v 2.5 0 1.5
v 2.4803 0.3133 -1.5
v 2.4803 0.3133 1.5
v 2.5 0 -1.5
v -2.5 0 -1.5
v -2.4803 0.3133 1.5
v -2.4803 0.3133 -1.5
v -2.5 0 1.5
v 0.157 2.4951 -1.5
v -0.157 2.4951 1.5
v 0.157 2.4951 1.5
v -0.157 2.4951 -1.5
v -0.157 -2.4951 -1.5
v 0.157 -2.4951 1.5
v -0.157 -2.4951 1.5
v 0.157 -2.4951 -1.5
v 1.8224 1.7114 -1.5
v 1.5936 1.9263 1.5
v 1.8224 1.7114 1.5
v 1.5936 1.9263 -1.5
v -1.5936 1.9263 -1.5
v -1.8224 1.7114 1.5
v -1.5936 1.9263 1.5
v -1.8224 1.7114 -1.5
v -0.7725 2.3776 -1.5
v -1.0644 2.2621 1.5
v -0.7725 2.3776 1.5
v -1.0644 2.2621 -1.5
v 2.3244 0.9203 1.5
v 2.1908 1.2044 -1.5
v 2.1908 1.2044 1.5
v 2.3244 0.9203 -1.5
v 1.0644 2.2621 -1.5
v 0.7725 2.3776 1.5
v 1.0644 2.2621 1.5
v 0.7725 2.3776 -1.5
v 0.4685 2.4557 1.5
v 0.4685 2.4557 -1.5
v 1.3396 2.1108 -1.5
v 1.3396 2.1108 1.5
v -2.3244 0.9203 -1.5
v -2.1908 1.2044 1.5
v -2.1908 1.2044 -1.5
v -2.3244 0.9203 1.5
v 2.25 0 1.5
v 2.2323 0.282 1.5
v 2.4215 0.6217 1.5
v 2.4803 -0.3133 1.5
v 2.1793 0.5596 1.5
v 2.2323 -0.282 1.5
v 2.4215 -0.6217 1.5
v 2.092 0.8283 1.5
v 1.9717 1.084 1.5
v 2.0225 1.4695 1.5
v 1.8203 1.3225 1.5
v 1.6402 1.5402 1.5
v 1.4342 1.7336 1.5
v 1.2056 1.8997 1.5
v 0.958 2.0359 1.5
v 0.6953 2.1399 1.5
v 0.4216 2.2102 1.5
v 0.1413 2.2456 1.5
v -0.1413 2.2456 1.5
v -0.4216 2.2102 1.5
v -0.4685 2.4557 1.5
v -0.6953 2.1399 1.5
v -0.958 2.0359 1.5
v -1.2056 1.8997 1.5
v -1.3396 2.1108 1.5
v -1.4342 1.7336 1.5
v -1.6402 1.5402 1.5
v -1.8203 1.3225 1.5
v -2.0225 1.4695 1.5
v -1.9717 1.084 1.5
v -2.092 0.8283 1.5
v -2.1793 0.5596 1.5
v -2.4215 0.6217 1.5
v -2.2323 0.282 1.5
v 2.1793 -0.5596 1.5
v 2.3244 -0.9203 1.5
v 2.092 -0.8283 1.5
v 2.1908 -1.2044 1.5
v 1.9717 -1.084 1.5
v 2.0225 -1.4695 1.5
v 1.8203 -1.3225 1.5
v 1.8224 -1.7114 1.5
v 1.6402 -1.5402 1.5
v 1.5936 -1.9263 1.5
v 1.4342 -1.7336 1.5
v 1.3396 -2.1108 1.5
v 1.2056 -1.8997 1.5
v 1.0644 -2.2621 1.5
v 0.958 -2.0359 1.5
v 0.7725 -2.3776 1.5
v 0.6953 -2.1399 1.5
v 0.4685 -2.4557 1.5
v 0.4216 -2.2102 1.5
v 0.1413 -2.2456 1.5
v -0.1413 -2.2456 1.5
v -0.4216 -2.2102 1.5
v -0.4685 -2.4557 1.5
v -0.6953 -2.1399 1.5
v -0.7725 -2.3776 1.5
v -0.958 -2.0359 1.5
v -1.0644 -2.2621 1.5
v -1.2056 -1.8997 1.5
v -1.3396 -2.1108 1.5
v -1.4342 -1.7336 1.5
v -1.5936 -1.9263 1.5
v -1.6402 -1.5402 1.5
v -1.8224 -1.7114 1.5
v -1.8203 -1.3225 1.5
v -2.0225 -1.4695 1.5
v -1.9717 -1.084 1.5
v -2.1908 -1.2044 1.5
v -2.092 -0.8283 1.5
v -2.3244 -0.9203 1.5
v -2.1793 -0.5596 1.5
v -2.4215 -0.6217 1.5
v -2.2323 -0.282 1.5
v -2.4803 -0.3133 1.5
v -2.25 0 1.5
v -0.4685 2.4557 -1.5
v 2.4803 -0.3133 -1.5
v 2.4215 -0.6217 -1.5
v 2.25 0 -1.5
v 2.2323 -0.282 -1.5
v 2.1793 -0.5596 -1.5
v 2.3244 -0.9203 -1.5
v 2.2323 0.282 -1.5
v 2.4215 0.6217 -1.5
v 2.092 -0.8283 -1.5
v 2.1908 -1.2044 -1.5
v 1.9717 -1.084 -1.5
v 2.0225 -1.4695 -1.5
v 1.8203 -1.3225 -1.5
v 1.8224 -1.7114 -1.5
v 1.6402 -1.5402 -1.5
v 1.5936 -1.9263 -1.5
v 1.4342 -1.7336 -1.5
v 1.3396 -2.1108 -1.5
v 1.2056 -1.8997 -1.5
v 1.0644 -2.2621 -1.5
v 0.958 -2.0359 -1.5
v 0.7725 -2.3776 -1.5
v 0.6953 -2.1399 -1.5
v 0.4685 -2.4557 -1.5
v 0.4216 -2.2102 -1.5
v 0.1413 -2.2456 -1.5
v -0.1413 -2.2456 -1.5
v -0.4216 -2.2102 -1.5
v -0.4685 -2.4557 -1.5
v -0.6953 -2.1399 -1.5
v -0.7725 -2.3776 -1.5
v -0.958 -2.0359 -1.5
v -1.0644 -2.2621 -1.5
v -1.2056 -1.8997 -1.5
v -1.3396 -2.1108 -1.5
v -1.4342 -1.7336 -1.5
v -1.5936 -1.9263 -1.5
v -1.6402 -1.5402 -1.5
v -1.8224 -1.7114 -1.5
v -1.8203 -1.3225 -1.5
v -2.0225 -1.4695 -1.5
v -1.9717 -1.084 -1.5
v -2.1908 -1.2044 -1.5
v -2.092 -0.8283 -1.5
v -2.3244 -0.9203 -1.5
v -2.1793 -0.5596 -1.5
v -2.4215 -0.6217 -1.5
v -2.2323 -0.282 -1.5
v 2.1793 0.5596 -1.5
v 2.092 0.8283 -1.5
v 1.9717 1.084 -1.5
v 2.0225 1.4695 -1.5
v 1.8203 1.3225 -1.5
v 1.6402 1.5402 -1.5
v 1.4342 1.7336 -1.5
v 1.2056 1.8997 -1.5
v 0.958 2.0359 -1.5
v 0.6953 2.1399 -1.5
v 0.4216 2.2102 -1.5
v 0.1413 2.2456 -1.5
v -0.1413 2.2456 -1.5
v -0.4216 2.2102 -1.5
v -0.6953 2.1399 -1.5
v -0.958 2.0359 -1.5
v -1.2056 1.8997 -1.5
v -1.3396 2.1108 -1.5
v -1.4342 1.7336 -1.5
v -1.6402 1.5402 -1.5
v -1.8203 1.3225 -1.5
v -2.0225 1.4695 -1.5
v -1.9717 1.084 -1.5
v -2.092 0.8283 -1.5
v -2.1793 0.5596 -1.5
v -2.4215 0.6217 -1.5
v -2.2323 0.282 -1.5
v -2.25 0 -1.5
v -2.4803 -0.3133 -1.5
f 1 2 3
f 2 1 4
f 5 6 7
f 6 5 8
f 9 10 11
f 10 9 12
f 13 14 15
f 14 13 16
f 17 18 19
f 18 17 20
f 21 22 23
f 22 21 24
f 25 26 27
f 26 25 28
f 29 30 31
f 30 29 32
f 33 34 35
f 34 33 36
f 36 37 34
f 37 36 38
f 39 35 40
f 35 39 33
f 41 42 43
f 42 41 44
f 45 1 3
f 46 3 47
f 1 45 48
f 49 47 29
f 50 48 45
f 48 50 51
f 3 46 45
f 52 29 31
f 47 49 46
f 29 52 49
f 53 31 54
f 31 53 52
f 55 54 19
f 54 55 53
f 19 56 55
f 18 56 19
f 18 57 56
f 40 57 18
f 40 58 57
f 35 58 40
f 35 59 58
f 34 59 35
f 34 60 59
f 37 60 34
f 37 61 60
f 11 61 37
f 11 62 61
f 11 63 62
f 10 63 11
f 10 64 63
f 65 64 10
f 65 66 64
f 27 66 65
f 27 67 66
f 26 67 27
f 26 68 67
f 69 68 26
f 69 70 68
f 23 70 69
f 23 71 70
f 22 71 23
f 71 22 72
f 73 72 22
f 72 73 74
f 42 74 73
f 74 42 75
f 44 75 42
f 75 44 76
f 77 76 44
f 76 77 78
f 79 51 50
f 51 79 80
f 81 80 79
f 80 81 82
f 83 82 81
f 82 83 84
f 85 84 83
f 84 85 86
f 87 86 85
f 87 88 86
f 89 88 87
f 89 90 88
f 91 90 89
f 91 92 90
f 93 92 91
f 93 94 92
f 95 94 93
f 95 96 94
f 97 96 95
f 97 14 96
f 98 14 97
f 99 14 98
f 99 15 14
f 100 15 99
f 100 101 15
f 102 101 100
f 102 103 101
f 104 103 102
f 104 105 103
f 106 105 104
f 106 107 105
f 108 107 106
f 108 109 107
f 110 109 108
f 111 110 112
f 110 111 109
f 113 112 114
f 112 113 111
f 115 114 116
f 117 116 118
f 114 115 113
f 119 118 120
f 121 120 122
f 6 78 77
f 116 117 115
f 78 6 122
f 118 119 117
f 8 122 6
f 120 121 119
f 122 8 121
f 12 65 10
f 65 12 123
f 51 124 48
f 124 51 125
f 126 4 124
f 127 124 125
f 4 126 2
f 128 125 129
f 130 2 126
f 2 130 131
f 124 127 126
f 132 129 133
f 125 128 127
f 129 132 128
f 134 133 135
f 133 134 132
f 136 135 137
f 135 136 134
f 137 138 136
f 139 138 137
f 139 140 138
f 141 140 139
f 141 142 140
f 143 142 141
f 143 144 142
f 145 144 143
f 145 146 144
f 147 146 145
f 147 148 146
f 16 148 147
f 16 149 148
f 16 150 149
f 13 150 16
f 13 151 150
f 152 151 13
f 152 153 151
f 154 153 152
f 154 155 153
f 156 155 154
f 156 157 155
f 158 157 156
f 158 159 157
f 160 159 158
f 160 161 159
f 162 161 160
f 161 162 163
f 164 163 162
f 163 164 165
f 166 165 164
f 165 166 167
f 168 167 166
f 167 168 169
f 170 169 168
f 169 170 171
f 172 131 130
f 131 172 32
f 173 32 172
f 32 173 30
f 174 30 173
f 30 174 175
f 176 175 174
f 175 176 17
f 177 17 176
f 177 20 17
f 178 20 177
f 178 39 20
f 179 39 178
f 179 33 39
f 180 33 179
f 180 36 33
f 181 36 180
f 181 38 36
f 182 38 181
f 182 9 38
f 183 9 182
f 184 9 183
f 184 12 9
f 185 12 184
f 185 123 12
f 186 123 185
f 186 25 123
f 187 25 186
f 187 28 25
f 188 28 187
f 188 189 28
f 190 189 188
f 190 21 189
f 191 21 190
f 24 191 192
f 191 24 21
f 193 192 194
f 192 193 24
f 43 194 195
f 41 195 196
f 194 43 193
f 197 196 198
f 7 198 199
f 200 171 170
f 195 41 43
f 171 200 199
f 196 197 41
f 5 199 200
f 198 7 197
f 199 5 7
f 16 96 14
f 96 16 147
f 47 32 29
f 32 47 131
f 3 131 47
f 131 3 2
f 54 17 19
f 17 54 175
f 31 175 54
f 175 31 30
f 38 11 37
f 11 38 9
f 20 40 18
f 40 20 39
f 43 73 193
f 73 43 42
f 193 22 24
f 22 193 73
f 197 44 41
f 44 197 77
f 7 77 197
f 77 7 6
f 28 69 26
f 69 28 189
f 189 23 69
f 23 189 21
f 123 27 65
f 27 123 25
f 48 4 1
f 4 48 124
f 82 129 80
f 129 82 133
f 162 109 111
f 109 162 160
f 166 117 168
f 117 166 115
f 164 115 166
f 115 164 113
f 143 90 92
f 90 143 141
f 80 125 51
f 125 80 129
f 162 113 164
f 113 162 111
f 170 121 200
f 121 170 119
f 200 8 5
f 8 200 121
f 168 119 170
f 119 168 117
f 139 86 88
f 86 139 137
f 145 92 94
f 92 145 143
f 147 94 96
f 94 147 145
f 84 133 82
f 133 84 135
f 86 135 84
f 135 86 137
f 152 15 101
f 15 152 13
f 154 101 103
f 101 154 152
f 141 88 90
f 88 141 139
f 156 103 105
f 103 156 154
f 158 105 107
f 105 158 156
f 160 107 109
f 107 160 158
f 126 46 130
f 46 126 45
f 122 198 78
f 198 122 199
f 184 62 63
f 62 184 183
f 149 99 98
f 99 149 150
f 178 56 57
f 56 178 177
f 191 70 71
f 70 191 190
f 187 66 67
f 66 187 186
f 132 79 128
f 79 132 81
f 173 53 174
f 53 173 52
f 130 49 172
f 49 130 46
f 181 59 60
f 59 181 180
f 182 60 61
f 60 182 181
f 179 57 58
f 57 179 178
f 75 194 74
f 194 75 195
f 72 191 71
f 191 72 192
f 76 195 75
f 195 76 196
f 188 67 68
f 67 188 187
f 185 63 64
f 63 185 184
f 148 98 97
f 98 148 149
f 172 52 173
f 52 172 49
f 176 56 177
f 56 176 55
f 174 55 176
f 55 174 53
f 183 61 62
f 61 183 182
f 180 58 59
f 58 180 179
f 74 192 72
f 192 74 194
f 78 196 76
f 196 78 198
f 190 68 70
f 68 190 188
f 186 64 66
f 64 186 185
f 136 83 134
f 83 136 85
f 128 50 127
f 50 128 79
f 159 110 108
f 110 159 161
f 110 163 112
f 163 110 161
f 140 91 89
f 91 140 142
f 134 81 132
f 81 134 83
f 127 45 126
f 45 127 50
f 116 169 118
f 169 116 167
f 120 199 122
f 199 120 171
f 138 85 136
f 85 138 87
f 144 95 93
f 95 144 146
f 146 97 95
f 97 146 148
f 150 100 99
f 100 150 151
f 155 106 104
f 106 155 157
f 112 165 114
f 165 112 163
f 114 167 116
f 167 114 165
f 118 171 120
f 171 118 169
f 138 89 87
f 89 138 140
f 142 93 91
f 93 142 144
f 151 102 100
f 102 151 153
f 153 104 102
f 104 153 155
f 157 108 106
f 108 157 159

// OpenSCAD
$fn = 50;


difference() {
	union() {
		translate(v = [0, 0, -1.5000000000]) {
			cylinder(h = 3, r = 2.5000000000);
		}
	}
	union() {
		translate(v = [0, 0, -100.0000000000]) {
			cylinder(h = 200, r = 2.2500000000);
		}
	}
}
